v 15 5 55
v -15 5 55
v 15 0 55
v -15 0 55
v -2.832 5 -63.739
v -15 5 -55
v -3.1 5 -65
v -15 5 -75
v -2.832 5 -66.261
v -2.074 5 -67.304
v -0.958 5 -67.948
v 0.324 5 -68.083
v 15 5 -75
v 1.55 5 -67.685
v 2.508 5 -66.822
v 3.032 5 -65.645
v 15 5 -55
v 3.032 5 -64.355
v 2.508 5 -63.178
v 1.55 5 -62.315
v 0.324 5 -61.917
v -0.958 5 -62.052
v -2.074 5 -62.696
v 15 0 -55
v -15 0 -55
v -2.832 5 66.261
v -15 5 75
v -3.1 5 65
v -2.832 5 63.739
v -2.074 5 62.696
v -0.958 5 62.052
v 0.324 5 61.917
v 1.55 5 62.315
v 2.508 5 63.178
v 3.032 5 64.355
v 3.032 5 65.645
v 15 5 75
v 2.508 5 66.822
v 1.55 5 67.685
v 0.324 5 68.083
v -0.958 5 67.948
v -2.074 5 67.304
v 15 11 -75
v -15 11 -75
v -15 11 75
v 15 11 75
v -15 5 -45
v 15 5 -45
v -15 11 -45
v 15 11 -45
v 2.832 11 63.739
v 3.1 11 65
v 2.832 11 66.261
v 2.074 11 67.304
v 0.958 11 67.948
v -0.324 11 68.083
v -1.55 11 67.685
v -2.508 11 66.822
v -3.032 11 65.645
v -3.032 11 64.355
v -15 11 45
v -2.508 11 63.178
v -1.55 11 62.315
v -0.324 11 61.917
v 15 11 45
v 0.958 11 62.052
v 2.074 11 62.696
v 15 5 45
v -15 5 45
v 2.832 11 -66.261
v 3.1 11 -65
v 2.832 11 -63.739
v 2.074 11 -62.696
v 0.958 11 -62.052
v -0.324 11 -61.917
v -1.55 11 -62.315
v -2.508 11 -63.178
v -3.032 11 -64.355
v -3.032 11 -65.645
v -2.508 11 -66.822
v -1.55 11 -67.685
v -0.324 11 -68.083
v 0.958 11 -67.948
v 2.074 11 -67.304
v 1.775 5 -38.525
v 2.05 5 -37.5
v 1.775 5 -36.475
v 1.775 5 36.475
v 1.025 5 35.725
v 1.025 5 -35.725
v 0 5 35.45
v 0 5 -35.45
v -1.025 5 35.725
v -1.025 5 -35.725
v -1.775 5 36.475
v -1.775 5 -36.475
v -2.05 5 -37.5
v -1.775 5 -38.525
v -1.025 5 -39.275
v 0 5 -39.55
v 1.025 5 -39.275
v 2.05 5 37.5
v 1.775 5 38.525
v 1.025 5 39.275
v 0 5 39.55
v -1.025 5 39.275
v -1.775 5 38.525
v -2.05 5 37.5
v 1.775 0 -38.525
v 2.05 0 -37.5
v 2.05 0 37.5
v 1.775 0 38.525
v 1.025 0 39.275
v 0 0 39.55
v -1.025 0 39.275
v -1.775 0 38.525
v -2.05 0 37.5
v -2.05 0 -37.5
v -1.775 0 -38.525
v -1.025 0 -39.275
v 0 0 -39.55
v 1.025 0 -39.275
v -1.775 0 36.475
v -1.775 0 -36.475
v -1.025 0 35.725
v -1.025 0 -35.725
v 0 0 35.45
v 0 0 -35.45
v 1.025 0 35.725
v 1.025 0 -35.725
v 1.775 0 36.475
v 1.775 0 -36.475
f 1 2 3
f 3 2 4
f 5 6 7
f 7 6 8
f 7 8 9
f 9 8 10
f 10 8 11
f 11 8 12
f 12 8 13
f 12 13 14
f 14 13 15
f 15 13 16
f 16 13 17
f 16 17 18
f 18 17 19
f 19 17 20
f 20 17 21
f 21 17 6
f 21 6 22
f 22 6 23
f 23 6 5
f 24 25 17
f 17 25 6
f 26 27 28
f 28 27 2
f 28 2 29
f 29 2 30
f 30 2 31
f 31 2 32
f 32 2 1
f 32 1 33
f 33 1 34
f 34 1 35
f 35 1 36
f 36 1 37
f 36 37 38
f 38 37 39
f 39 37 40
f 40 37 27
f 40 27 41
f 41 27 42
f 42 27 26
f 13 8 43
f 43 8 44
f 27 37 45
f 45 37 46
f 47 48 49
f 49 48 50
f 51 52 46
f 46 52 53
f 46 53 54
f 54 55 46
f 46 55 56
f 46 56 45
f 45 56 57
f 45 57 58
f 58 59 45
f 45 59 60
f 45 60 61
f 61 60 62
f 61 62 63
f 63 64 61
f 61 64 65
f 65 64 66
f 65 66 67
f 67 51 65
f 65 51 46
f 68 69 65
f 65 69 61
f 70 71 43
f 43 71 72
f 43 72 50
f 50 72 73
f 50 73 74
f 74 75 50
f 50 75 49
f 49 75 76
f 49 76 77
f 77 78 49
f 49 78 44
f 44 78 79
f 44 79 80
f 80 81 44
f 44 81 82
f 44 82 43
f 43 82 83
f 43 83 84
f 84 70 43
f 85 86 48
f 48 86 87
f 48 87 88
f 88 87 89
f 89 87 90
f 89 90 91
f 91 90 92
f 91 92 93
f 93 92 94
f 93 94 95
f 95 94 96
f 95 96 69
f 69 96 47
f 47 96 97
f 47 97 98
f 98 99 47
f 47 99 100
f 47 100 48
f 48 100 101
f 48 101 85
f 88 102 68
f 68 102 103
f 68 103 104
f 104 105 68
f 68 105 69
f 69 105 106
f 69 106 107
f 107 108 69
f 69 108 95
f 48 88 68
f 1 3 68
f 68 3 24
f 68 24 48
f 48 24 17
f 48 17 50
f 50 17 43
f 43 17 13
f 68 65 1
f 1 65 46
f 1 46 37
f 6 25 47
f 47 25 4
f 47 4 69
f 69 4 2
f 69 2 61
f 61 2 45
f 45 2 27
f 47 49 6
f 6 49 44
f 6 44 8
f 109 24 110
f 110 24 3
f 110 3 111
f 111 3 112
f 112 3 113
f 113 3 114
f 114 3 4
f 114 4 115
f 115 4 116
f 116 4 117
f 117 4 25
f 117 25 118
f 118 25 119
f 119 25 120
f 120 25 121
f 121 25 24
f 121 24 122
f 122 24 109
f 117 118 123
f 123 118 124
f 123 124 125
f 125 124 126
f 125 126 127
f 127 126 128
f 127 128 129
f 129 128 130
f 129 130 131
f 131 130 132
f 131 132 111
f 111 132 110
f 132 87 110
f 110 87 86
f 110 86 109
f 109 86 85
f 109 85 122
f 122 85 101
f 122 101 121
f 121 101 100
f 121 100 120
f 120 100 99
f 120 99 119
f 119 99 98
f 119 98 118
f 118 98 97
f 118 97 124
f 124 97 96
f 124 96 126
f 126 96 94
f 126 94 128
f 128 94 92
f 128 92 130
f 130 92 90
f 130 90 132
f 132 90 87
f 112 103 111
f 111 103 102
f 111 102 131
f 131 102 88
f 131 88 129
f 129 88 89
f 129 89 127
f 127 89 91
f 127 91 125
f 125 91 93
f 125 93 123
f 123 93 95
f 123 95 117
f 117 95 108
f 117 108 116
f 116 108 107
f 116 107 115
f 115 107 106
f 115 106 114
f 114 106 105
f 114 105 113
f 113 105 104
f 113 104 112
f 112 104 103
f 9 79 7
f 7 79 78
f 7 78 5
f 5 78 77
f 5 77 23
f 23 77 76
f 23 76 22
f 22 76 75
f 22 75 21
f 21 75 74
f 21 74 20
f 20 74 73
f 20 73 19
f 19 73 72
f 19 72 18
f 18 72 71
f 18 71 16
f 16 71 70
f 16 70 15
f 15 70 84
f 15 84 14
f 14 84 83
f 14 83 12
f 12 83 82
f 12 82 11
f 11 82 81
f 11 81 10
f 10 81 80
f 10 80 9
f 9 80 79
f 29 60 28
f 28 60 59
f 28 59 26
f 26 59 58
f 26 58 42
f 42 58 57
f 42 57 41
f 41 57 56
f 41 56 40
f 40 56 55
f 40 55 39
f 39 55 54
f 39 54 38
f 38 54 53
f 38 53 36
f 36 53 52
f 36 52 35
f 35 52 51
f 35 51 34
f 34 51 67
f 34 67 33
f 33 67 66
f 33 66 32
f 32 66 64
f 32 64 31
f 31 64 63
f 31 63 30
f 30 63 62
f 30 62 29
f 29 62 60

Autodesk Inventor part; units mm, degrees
ref_plane "YZ Plane" through (0, 0, 0) normal (1, 0, 0) x (0, 1, 0)
ref_plane "XZ Plane" through (0, 0, 0) normal (0, 1, 0) x (-1, 0, 0)
ref_plane "XY Plane" through (0, 0, 0) normal (0, 0, 1) x (1, 0, 0)
sketch "Skizze1" plane through (0, 0, 0) normal (0, 1, 0) x (-1, 0, 0)
  line L0 (-15, 50) -> (15, 50)
  line L1 (15, 50) -> (15, -50)
  line L2 (15, -50) -> (-15, -50)
  line L3 (-15, -50) -> (-15, 50)
  line L4 (-15, 50) -> (15, -50) construction
  line L5 (15, 50) -> (-15, -50) construction
  point P0 (0, 0)
  dimension "d0" = 30
  dimension "d1" = 100
extrude "Extrusion1" add sketch "Skizze1" along normal blind 5
sketch "Skizze2" plane through (0, 5, 0) normal (0, 1, 0) x (1, 0, 0)
  line L0 (15, 50) -> (-15, 50) projected
  line L1 (-15, 50) -> (-15, -50) projected
  line L2 (-15, -50) -> (15, -50) projected
  line L3 (15, -50) -> (15, 50) projected
  line L4 (-15, -50) -> (15, -50) projected
  line L5 (0, -37.5) -> (0, 37.5)
  circle A0 centre (0, -37.5) radius 2.05
  circle A1 centre (0, 37.5) radius 2.05
  point P0 (0, 0)
  dimension "d22" = 75
  dimension "d23" = 4.1
  dimension "d24" = 4.1
sketch "Skizze3" plane through (0, 5, 0) normal (0, 1, 0) x (1, 0, 0)
  line L0 (-15, -50) -> (15, -50) projected
  line L1 (-15, -50) -> (0, -50)
  line L2 (0, -37.5) -> (0, 37.5)
  circle A0 centre (0, -37.5) radius 2.05
  circle A1 centre (0, 37.5) radius 2.05
  line L3 (15, -50) -> (15, 50) projected
  line L4 (-15, -50) -> (15, -50)
  line L5 (15, -50) -> (15, -45)
  line L6 (15, -45) -> (-15, -45)
  line L7 (-15, -45) -> (-15, -50)
  line L8 (-15, 50) -> (15, 50)
  line L9 (15, 50) -> (15, 45)
  line L10 (15, 45) -> (-15, 45)
  line L11 (-15, 45) -> (-15, 50)
  point P0 (0, 0)
  dimension "d4" = 15
  dimension "d5" = 12.5
  dimension "d6" = 75
  dimension "d7" = 4.1
  dimension "d8" = 4.1
  dimension "d9" = 5
  dimension "d10" = 5
extrude "Extrusion2" add sketch "Skizze3" along normal blind 6 contours L7 L6 L3 L0 | L10 L11 L8 L3
sketch "Skizze4" plane through (-15, 0, 50) normal (0, 0, 1) x (1, 0, 0)
  line L0 (0, 0) -> (30, 0) projected
  line L1 (30, 0) -> (30, 11) projected
  line L2 (0, 11) -> (30, 11) projected
  line L3 (0, 0) -> (0, 11) projected
  line L4 (0, 5) -> (30, 5) projected
  point P0 (15, 0)
extrude "Extrusion3" add sketch "Skizze4" along normal blind 25 contours L3 L2 L1 L4
sketch "Skizze5" plane through (15, 0, -50) normal (0, 0, -1) x (-1, 0, 0)
  line L0 (0, 0) -> (30, 0) projected
  line L1 (30, 0) -> (30, 11) projected
  line L2 (0, 11) -> (30, 11) projected
  line L3 (0, 0) -> (0, 11) projected
  line L4 (0, 5) -> (30, 5) projected
  point P0 (15, 0)
extrude "Extrusion4" add sketch "Skizze5" along normal blind 25 contours L3 L2 L1 L4
sketch "Skizze6" plane through (15, 0, -50) normal (0, 0, -1) x (-1, 0, 0)
  line L0 (0, 5) -> (30, 5) projected
  line L1 (0, 0) -> (30, 0) projected
  line L2 (30, 5) -> (0, 5) projected
  line L3 (0, 0) -> (0, 5) projected
  line L4 (0, 0) -> (30, 0) projected
  line L5 (30, 0) -> (30, 5) projected
  point P0 (15, 0)
extrude "Extrusion5" add sketch "Skizze6" along normal blind 5
sketch "Skizze7" plane through (-15, 0, 50) normal (0, 0, 1) x (1, 0, 0)
  line L0 (30, 5) -> (0, 5) projected
  line L1 (0, 0) -> (0, 5) projected
  line L2 (0, 0) -> (30, 0) projected
  line L3 (30, 0) -> (30, 5) projected
  point P0 (15, 0)
extrude "Extrusion6" add sketch "Skizze7" along normal blind 5
extrude "Extrusion7" cut sketch "Skizze2" against normal blind 5 contours A1 | A0
sketch "Skizze8" plane through (0, 11, 0) normal (0, 1, 0) x (1, 0, 0)
  line L0 (15, -45) -> (15, -75) projected
  line L1 (15, -45) -> (-15, -45) projected
  line L2 (-15, -45) -> (-15, -75) projected
  line L3 (15, -75) -> (-15, -75) projected
  line L4 (0, -75) -> (0, -65)
  circle A0 centre (0, -65) radius 3.1
  line L5 (-15, 45) -> (-15, 75) projected
  line L6 (-15, 45) -> (15, 45) projected
  line L7 (15, 45) -> (15, 75) projected
  line L8 (-15, 75) -> (15, 75) projected
  line L9 (0, 75) -> (0, 65)
  circle A1 centre (0, 65) radius 3.1
  point P0 (0, 0)
  dimension "d27" = 10
  dimension "d28" = 6.2
  dimension "d29" = 10
  dimension "d30" = 6.2
extrude "Extrusion8" cut sketch "Skizze8" against normal blind 7 contours A0 | A1
properties part number "DepthCAM"
